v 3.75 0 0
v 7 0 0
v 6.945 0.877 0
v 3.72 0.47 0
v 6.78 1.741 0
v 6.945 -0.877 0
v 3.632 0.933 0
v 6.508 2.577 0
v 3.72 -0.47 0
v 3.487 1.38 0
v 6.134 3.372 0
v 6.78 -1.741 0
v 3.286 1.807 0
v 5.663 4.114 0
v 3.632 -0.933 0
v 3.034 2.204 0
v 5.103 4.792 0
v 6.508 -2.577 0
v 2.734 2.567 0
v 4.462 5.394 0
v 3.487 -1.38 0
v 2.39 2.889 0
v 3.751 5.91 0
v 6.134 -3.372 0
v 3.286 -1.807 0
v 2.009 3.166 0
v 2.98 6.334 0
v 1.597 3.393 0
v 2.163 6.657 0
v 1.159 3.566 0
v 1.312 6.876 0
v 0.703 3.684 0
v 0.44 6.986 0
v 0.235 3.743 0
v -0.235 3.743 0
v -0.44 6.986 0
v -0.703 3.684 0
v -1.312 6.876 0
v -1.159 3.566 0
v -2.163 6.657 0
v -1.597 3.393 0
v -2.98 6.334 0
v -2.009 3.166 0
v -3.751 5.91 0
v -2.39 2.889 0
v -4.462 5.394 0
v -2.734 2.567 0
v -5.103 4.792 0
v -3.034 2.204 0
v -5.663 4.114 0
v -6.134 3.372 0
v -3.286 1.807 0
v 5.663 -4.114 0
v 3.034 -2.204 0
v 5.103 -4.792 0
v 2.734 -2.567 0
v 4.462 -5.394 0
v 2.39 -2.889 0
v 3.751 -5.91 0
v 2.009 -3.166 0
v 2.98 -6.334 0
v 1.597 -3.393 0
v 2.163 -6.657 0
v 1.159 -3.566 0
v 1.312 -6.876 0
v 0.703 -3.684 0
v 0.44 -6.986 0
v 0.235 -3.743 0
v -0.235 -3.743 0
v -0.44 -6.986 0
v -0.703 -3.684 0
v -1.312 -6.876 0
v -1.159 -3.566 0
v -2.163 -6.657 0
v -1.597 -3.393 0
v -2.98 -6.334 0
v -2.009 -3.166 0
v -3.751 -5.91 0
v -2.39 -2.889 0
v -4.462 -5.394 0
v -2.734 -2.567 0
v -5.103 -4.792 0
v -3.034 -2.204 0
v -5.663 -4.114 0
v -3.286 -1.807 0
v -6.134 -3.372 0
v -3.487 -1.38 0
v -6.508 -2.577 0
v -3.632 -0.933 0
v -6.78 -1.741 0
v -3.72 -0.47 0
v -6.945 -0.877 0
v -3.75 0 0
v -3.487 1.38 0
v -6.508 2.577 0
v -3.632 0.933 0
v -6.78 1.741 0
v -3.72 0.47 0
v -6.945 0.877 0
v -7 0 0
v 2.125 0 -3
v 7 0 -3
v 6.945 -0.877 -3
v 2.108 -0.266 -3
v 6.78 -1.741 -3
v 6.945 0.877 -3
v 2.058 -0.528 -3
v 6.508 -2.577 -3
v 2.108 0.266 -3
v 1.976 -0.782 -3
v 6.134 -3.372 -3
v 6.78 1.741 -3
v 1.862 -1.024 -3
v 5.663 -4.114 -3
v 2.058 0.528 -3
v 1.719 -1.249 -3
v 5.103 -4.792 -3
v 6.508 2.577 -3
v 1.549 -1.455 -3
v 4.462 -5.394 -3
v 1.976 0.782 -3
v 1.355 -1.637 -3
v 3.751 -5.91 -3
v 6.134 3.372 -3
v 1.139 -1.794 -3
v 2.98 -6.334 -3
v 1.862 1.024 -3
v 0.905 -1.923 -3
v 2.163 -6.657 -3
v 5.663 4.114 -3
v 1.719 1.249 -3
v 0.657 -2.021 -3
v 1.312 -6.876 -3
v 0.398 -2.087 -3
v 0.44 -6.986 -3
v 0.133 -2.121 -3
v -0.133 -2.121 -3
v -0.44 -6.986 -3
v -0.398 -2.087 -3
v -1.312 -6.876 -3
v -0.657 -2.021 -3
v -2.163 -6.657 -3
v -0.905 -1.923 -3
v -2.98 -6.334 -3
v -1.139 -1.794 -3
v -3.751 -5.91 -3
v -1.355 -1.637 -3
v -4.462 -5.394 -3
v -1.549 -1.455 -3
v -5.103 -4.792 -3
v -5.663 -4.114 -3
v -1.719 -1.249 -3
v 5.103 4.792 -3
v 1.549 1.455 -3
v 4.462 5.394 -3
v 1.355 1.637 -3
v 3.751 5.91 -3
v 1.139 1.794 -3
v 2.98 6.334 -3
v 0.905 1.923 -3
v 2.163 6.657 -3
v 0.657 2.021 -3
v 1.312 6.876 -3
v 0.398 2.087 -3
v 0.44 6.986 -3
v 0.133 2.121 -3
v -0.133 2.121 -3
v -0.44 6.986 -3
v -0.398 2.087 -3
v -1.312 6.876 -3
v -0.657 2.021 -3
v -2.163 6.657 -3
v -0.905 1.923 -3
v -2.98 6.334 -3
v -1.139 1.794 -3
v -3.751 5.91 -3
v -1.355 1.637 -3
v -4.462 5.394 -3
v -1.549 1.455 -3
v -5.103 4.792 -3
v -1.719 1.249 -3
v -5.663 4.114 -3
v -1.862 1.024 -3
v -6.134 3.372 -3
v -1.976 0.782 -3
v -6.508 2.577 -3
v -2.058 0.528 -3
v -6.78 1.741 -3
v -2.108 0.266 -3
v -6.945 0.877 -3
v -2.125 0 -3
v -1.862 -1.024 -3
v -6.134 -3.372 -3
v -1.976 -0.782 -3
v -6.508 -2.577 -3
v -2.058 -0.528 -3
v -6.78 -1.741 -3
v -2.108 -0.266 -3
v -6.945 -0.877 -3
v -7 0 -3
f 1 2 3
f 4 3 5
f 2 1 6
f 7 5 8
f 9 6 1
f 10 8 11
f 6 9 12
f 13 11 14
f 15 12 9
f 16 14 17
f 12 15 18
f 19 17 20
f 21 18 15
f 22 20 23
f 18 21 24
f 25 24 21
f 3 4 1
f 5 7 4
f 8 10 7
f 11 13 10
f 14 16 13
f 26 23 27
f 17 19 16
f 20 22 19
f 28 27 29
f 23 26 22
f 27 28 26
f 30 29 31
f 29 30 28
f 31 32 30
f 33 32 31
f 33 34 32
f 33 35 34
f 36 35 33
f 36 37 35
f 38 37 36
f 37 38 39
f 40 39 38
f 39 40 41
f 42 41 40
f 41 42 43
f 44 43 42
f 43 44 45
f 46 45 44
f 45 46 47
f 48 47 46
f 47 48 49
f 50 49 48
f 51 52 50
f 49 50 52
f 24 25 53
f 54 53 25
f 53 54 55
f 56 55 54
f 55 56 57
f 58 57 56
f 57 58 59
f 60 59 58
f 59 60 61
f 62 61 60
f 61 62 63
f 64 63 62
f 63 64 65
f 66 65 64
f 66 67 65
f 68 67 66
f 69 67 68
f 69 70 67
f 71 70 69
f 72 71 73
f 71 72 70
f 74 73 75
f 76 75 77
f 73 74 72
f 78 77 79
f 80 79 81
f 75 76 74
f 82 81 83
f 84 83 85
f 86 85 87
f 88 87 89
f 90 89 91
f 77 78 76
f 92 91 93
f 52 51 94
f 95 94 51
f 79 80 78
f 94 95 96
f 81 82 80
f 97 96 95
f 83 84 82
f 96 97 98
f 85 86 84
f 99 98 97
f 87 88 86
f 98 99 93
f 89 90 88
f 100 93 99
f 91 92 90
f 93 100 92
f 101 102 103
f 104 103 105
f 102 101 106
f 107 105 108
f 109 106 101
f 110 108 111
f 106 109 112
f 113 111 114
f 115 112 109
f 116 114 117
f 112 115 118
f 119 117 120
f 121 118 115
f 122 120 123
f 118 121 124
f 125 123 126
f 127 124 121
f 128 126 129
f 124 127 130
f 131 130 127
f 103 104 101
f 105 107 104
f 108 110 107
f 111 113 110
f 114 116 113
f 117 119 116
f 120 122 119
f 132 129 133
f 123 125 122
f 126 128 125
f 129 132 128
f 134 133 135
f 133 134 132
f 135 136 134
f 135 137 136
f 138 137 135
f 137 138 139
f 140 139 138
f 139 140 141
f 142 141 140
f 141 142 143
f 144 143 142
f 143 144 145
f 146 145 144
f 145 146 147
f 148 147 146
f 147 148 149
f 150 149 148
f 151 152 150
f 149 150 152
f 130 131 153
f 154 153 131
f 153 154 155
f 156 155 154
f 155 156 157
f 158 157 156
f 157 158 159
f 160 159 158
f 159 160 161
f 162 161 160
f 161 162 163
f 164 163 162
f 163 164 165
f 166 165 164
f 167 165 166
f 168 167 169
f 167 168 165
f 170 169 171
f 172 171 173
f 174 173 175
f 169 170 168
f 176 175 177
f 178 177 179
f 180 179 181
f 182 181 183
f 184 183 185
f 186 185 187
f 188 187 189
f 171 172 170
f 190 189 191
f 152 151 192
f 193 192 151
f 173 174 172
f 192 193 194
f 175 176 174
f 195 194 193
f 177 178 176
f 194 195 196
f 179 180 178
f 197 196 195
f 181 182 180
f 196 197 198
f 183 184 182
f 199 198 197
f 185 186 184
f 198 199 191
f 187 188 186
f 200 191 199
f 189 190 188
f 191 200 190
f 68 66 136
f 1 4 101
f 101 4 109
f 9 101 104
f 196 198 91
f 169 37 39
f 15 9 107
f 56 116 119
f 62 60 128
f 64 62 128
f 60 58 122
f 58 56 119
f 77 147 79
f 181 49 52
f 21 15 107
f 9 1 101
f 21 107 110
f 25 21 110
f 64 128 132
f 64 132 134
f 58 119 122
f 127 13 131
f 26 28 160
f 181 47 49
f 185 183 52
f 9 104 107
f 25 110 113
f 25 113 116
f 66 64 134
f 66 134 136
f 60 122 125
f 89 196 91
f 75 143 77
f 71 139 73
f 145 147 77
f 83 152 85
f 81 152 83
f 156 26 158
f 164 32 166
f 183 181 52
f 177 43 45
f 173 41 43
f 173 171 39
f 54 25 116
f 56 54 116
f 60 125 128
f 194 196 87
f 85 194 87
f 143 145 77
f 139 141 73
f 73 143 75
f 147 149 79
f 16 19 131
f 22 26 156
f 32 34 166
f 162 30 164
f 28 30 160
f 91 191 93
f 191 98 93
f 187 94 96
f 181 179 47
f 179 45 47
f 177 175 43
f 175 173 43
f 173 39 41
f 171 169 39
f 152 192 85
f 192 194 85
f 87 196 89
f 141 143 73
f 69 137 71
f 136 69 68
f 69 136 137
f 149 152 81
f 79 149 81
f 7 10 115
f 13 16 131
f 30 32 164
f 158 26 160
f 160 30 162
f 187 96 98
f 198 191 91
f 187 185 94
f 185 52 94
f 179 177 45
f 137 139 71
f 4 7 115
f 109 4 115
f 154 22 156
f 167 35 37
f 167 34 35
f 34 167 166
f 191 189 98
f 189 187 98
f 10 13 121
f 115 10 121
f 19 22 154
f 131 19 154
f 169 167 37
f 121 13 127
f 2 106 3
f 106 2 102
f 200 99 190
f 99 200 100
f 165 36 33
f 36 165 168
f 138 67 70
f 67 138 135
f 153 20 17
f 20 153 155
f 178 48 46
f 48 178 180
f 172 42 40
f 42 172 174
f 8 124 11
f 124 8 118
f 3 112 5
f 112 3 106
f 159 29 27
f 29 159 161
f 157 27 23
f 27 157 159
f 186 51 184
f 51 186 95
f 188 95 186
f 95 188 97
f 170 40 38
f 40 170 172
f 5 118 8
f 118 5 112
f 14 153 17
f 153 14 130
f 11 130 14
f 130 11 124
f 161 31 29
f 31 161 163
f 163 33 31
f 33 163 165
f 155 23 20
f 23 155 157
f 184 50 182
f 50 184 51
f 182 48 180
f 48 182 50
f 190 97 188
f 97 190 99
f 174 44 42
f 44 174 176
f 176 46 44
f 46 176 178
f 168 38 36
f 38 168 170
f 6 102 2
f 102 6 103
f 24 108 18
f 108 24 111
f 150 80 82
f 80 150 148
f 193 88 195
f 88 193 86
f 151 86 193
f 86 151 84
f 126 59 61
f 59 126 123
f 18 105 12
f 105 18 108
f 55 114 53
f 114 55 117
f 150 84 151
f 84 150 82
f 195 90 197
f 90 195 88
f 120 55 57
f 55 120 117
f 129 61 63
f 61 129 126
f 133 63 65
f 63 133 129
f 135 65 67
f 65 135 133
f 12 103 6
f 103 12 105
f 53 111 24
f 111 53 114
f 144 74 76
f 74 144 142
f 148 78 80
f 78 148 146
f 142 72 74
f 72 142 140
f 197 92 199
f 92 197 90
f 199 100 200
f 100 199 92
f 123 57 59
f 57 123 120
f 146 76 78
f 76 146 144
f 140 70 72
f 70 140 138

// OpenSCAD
$fn = 50;


difference() {
	union() {
		translate(v = [0, 0, -3.0000000000]) {
			cylinder(h = 3, r = 7.0000000000);
		}
		cylinder(h = 0, r = 17.0000000000);
	}
	union() {
		translate(v = [0, 0, 0]) {
			rotate(a = [0, 0, 0]) {
				difference() {
					union() {
						#translate(v = [0, 0, -3.0000000000]) {
							cylinder(h = 3, r = 2.0000000000);
						}
						#translate(v = [0, 0, -3]) {
							cylinder(h = 3, r1 = 2.1250000000, r2 = 3.7500000000);
						}
						#translate(v = [0, 0, -3.0000000000]) {
							cylinder(h = 3, r = 2.1250000000);
						}
						#translate(v = [0, 0, -3.0000000000]) {
							cylinder(h = 3, r = 2.0000000000);
						}
					}
					union();
				}
			}
		}
	}
}
